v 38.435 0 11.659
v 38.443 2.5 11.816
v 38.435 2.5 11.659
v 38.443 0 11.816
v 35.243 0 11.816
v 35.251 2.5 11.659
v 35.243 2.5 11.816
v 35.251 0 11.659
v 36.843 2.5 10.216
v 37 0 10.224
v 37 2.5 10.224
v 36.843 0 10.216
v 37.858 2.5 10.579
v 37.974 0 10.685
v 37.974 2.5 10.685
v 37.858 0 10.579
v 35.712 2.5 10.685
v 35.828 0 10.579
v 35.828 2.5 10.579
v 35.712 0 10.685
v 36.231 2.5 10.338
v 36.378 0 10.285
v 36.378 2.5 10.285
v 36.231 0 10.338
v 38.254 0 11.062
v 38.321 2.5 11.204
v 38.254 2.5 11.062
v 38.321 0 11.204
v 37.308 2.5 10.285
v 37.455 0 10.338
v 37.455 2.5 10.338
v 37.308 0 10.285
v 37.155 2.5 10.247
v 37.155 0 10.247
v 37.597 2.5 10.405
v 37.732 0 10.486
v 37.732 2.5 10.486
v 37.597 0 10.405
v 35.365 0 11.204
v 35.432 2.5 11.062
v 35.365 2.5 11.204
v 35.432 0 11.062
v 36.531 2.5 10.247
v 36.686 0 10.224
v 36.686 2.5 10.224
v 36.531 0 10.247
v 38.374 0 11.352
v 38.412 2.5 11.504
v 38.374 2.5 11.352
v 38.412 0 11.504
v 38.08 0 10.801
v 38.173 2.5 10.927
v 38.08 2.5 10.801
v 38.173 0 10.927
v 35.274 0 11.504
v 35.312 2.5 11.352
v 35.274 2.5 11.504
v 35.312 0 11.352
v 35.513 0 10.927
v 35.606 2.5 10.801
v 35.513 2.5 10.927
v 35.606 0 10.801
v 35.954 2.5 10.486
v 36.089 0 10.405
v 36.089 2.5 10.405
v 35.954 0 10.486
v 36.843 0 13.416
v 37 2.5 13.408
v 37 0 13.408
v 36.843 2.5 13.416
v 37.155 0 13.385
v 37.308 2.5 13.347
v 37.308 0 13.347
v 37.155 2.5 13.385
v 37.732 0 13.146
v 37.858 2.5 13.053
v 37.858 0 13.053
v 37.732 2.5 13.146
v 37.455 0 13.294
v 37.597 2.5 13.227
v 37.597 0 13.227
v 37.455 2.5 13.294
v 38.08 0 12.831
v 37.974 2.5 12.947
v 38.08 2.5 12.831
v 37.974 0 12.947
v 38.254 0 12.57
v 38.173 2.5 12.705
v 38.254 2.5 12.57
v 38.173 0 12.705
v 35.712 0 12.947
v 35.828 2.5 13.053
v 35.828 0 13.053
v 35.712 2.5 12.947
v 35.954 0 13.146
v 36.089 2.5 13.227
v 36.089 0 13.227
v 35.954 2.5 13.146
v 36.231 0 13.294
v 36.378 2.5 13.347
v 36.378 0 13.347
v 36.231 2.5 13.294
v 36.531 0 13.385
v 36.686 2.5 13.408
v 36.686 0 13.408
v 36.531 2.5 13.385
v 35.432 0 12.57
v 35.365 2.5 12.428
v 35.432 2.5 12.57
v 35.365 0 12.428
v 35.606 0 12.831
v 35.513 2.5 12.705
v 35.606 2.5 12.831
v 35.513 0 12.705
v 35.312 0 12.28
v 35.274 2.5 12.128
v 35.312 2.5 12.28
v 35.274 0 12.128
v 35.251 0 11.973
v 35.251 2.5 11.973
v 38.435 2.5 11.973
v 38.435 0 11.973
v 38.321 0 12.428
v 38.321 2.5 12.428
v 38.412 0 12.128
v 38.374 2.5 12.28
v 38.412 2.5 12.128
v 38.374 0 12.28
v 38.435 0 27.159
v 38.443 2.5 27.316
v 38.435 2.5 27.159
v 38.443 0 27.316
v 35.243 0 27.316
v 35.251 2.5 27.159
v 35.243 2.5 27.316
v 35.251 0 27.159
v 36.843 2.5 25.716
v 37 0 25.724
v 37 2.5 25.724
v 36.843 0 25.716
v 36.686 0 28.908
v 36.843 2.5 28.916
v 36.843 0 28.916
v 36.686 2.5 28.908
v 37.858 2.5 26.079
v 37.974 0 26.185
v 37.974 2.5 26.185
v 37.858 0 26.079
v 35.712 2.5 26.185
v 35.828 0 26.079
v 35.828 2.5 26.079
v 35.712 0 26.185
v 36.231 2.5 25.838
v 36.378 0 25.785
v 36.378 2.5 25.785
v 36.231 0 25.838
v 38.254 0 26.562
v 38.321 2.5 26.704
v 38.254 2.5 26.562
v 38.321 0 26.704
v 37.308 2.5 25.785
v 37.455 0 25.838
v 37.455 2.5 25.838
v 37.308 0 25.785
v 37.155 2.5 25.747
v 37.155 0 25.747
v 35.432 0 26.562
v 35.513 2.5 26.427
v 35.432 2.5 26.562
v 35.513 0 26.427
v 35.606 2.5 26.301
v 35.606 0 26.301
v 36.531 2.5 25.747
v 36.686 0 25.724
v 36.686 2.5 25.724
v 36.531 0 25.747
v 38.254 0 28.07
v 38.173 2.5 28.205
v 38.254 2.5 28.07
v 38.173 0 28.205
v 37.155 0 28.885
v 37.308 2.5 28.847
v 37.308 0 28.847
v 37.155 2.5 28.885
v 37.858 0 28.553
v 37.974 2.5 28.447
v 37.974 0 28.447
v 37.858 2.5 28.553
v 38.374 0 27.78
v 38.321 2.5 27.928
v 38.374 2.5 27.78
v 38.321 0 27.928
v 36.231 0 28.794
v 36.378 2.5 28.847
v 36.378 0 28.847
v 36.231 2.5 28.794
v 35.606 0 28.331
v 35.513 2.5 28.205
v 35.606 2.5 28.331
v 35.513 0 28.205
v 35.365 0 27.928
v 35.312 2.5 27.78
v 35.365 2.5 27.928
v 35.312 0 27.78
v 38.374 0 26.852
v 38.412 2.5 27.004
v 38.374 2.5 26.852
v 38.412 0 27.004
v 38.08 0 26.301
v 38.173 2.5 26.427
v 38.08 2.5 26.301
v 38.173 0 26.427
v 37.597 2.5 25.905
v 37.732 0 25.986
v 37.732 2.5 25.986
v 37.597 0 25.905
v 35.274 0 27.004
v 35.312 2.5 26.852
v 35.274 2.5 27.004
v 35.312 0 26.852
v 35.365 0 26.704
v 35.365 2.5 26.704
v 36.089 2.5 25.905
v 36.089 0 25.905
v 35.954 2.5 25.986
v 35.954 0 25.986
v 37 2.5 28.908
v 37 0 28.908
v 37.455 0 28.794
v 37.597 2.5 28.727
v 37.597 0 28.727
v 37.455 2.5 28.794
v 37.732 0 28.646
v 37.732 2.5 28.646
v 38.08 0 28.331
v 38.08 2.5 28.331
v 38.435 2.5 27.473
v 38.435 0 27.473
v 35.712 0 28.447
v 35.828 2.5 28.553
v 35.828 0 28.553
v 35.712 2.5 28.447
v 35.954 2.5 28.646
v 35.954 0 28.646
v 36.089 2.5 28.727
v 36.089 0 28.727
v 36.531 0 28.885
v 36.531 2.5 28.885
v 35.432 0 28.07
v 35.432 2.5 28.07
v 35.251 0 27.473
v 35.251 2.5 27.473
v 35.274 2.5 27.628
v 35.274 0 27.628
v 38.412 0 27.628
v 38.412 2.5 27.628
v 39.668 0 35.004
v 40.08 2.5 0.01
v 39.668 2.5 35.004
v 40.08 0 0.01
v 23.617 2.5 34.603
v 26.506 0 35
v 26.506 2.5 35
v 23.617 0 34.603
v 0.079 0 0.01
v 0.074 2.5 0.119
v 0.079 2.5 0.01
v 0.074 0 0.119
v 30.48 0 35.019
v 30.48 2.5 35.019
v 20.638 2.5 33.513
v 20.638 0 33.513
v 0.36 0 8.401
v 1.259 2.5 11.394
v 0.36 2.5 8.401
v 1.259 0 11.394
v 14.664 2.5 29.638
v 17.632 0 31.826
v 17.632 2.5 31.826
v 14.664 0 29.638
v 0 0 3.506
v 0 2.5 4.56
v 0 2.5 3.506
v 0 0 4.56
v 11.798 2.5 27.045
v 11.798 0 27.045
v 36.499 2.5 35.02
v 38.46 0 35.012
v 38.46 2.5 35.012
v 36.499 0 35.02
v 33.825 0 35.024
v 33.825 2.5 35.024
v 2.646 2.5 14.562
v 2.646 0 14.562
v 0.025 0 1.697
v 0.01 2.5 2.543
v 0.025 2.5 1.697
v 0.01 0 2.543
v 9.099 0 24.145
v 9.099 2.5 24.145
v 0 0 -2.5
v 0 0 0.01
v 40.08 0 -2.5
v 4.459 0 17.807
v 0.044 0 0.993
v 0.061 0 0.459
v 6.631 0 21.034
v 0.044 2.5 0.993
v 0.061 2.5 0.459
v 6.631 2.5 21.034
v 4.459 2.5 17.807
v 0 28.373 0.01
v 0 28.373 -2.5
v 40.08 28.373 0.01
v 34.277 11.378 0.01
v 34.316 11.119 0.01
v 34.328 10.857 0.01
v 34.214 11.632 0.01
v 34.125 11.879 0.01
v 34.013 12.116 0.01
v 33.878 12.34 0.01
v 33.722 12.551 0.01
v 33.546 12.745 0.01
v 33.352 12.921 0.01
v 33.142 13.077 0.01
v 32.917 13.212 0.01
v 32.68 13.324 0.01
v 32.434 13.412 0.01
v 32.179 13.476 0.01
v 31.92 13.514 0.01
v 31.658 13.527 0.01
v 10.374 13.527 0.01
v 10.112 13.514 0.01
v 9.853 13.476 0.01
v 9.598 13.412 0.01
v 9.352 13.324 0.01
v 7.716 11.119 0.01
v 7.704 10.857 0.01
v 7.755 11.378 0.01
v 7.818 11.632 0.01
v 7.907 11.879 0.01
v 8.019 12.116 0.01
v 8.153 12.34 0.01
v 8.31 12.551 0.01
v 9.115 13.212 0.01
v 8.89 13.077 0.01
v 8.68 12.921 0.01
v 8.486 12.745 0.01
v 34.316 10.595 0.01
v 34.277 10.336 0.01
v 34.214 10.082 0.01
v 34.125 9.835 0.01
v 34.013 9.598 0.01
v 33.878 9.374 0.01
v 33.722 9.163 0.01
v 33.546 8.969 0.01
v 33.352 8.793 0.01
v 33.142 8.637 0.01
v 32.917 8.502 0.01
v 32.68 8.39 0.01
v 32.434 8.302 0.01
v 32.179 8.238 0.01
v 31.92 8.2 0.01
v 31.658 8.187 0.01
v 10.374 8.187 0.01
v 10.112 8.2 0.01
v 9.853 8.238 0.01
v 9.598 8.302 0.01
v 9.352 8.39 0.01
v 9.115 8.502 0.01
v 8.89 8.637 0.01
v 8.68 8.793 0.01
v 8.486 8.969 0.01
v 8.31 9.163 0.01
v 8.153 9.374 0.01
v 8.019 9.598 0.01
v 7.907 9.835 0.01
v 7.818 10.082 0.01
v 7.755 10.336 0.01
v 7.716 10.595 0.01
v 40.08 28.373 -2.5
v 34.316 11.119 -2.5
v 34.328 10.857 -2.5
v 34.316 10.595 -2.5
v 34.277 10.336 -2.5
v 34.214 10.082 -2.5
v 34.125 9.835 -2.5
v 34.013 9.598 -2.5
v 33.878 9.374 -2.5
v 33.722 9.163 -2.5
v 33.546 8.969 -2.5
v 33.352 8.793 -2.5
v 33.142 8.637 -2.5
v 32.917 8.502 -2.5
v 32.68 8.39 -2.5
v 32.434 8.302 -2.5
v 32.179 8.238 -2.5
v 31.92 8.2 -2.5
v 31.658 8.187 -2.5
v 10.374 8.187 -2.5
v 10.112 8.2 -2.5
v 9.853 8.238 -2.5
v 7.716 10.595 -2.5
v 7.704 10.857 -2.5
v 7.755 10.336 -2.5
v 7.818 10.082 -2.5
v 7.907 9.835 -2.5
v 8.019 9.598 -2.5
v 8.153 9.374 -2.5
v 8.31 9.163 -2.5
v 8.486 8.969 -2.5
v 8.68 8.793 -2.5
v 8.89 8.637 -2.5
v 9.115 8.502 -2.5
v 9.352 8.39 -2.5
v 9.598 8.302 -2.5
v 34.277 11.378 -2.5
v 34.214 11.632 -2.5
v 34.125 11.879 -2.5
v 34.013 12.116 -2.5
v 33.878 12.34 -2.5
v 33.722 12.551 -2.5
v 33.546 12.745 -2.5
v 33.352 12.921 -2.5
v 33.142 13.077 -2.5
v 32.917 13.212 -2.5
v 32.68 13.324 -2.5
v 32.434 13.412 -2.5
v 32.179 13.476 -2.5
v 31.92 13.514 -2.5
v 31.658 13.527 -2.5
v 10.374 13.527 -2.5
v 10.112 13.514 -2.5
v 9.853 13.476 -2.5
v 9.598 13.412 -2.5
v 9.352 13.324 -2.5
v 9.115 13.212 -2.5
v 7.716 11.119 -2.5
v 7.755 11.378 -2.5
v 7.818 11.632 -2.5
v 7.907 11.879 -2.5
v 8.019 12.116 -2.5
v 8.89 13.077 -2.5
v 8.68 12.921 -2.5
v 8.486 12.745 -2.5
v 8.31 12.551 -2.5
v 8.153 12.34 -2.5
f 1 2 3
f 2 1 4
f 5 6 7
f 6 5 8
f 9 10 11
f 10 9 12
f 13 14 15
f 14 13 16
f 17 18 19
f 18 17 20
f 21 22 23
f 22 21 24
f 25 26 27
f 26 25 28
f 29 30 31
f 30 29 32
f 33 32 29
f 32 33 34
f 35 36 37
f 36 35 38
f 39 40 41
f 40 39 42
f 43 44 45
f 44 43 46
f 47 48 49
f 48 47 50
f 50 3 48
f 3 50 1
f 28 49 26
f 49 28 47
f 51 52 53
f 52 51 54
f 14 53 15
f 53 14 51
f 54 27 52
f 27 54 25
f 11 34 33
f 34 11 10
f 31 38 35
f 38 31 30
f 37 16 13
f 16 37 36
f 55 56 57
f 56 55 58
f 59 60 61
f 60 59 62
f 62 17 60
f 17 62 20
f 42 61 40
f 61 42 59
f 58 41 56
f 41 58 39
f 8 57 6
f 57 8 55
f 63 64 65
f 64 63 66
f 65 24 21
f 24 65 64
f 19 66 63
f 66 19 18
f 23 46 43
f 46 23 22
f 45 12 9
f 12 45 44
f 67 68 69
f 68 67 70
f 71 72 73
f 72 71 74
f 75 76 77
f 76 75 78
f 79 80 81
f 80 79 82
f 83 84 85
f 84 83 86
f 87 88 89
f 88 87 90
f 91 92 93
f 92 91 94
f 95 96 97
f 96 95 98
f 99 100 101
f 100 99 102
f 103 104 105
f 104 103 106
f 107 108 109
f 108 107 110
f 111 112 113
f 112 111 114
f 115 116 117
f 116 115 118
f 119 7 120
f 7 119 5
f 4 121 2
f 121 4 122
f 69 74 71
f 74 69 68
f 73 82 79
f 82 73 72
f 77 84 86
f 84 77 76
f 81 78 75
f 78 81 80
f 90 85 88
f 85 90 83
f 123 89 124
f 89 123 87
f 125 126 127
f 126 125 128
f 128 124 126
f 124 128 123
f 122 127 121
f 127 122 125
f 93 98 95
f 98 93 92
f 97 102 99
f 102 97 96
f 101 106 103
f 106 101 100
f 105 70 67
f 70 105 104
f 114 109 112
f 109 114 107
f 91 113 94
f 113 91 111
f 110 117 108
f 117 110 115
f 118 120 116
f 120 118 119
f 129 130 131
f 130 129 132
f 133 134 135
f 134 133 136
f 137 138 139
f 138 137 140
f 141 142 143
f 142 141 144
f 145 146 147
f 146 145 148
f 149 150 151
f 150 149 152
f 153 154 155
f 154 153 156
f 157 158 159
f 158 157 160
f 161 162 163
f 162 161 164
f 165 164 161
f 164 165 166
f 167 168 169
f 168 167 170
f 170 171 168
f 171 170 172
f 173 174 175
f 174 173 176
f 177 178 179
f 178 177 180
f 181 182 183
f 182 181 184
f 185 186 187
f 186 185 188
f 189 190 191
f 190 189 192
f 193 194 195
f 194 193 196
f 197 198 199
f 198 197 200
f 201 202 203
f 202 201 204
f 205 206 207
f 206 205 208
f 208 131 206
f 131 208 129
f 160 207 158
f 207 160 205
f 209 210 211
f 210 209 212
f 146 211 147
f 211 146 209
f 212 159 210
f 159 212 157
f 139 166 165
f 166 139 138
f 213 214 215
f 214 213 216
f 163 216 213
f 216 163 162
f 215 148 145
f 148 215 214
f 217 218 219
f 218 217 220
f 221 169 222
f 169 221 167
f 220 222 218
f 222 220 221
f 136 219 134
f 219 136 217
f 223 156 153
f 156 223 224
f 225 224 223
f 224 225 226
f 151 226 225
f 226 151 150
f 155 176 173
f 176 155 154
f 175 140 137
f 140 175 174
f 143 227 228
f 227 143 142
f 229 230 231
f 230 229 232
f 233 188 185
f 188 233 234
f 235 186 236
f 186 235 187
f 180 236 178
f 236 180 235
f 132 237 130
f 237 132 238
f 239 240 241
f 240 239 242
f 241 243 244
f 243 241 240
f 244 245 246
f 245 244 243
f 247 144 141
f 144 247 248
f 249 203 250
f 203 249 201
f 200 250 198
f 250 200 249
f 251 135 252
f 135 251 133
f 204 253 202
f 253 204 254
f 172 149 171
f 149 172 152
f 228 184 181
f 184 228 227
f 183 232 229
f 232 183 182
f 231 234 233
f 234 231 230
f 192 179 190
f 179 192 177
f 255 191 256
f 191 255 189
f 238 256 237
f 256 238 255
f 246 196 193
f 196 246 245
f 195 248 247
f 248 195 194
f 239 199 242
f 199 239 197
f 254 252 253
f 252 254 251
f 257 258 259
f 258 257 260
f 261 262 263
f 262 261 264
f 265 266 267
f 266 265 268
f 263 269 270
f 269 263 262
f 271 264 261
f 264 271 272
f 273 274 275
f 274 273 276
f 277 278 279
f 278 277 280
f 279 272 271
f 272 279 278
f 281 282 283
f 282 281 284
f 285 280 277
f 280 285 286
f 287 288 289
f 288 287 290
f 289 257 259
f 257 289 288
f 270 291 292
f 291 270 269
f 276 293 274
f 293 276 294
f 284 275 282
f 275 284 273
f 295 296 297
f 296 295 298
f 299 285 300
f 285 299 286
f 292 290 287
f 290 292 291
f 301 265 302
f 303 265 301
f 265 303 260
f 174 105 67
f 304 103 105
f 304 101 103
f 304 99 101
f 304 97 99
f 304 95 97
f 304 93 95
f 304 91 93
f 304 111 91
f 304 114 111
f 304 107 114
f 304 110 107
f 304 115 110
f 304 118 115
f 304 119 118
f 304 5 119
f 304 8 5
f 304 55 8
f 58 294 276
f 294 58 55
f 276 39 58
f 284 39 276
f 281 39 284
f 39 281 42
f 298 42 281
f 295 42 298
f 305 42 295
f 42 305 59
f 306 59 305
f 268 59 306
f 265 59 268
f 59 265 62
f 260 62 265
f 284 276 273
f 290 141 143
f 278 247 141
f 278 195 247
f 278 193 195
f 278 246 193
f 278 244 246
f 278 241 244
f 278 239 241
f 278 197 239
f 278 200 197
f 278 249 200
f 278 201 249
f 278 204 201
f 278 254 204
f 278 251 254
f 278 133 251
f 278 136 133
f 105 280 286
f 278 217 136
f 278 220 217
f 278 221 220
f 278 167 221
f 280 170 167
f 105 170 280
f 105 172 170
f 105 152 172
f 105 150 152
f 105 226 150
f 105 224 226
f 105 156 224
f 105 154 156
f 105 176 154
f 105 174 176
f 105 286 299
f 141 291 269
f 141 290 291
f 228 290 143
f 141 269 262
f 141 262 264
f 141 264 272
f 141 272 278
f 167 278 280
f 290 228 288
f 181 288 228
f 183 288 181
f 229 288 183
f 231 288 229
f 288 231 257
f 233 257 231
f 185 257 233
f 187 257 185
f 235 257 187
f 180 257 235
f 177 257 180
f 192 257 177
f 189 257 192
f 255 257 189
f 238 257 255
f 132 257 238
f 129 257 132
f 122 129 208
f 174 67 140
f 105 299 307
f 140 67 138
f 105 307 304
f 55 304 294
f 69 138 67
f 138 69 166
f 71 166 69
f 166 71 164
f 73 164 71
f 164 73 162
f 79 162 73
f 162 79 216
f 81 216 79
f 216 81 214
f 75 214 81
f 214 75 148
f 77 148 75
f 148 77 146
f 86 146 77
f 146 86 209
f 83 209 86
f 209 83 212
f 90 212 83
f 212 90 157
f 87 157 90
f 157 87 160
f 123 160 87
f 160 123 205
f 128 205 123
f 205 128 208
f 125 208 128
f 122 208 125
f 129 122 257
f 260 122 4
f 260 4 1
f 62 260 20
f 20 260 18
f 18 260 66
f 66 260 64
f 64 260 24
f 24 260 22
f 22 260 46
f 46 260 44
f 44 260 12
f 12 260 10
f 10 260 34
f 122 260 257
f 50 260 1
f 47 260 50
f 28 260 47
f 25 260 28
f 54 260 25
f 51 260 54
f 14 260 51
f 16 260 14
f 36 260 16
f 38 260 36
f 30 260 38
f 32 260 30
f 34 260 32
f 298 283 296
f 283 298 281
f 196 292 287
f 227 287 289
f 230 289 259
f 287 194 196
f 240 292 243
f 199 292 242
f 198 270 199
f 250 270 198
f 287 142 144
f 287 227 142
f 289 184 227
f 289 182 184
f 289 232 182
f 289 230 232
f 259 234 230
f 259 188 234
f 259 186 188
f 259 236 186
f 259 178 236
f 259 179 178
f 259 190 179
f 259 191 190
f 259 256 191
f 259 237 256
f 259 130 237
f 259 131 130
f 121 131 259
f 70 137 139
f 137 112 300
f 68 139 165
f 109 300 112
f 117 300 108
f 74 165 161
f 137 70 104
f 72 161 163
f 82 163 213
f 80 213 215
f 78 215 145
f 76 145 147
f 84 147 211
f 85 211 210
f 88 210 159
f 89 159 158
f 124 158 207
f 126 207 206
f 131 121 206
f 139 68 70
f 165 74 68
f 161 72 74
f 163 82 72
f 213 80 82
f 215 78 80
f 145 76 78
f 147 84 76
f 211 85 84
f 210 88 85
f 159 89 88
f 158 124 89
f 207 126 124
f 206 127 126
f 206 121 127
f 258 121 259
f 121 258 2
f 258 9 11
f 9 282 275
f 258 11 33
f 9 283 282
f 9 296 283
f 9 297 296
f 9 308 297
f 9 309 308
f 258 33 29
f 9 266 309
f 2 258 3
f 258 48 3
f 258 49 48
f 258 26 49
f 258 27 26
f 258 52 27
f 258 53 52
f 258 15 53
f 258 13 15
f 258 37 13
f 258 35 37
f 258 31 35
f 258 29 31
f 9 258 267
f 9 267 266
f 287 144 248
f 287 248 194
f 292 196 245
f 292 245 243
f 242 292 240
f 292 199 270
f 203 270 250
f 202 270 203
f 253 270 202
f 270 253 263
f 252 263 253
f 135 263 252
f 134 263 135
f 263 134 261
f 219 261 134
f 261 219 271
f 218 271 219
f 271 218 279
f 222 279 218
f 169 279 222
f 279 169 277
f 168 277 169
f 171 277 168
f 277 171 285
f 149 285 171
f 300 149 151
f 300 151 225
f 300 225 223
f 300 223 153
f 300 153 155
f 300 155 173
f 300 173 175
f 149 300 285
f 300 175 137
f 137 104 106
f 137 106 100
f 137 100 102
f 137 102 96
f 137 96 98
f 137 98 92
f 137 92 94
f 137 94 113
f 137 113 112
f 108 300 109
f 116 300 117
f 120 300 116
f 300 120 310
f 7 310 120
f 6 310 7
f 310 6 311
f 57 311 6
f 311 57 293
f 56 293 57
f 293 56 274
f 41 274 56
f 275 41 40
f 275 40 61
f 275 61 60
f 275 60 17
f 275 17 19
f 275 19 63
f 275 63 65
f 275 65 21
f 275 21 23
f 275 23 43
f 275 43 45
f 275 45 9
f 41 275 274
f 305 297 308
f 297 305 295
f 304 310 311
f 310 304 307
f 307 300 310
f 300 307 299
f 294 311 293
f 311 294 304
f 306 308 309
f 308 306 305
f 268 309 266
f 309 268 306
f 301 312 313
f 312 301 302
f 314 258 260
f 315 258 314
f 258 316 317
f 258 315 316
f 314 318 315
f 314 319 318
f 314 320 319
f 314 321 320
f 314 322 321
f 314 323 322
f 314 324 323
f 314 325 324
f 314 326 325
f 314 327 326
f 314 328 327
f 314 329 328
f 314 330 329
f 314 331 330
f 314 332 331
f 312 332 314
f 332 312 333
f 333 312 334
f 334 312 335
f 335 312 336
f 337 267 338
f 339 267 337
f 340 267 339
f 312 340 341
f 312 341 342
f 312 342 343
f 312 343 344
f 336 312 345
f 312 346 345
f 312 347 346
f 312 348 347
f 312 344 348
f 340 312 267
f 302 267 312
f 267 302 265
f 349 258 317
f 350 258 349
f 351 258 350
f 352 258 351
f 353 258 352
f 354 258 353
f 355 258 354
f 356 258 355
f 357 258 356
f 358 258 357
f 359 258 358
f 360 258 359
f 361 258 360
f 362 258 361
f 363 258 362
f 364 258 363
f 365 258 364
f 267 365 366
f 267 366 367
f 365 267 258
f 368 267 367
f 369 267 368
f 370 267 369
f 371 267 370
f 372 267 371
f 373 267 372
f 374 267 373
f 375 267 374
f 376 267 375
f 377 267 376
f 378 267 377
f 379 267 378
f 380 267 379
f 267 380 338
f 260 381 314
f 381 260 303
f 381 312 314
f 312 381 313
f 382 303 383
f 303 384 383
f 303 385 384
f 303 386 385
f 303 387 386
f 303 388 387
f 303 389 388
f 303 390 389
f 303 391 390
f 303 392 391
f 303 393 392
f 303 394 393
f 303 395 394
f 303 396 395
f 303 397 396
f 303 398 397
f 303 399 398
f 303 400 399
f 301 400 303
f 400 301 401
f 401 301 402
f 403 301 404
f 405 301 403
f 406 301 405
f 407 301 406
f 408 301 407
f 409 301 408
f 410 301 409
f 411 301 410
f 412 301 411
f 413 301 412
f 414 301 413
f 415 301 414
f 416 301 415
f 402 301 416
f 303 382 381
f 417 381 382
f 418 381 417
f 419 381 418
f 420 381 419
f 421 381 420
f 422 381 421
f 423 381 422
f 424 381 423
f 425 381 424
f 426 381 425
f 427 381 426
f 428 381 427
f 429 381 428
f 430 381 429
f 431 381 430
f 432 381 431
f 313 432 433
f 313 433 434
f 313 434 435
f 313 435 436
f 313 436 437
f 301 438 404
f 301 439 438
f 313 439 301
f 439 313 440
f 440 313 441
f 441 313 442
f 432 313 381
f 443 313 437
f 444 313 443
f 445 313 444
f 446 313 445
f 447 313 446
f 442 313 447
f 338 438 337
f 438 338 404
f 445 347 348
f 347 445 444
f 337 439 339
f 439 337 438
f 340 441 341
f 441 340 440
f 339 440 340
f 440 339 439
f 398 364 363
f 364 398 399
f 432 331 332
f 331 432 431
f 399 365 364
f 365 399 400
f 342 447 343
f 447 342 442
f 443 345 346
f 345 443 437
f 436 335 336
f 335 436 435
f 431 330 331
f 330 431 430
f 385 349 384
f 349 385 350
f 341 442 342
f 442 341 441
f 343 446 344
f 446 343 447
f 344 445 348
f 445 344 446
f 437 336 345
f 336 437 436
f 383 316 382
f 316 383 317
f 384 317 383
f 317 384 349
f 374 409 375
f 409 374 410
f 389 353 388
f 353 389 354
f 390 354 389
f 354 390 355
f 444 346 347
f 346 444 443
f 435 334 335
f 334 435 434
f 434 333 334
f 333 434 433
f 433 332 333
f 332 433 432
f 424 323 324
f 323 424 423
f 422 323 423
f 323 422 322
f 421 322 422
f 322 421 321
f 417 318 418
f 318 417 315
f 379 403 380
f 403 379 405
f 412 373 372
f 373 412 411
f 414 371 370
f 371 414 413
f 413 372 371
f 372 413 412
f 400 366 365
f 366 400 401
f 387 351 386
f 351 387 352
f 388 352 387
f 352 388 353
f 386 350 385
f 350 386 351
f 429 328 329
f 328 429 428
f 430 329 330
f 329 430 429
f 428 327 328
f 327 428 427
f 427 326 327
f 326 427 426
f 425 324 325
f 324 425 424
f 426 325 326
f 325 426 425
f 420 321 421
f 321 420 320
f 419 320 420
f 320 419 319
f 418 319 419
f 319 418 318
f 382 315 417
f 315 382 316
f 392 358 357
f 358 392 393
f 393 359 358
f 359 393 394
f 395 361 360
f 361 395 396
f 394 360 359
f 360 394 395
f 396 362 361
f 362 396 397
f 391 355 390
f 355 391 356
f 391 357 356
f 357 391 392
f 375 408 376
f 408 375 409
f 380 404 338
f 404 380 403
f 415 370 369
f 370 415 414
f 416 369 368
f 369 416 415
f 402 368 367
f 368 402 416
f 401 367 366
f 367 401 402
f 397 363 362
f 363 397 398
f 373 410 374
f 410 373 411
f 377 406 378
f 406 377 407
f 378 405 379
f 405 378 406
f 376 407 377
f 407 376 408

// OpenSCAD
// OLMP-V1.2C board mount, 3D-printed (interim, until laser cutter is
// rebuilt - see docs/decisions/0049-olmp-board-mount-3d-printed.md).
//
// Direct translation of Reference/olmp-board-mount-build reference.svg
// (FRONT/TOP/SIDE layers). Genuine L-bracket: thin vertical wall +
// thin horizontal foot (both 2.5mm, per the SIDE layer), not a solid
// wedge - the SIDE layer is two ~2.4mm-thick rectangles meeting at a
// corner, i.e. an actual L cross-section.
//
// Axes: X = width (u, FRONT/TOP left-right), Y = depth (d, TOP/SIDE
// front-back), Z = height (w, FRONT/SIDE up-down).
//
// Units: mm.

$fn = 64;

// --- exact FRONT profile outline (wall's own front-facing silhouette),
// traced from the SVG path/bezier curves, as (u, -w) pairs ready for
// linear_extrude + rotate([-90,0,0]) (see wall() below) ---
front_profile = [
    [26.506,-35.0], [30.48,-35.019], [33.825,-35.024], [36.499,-35.02],
    [38.46,-35.012], [39.668,-35.004], [40.08,-0.0], [0.08,-0.0],
    [0.074,-0.119], [0.061,-0.459], [0.044,-0.993], [0.025,-1.697],
    [0.01,-2.543], [0.0,-3.506], [0.0,-4.56], [0.36,-8.401],
    [1.259,-11.394], [2.646,-14.562], [4.459,-17.807], [6.631,-21.034],
    [9.099,-24.145], [11.798,-27.045], [14.664,-29.638], [17.632,-31.826],
    [20.638,-33.513], [23.617,-34.603], [26.506,-35.0],
];
front_width = 40.08;

// --- M3 board holes, exact FRONT-layer circle positions (u, w) ---
hole_u = 36.843;
hole_w = [11.816, 27.316];   // 15.5mm apart, as drawn
hole_dia = 3.2;              // as drawn (2x1.6mm radius)

// --- SIDE-layer L cross-section thicknesses ---
wall_t = 2.5;   // vertical wall thickness (D), rect8 (2.424mm drawn)
foot_t = 2.5;   // horizontal foot thickness (W), rect9 (2.432mm drawn)
foot_d = 28.373; // foot depth/length (D), rect9's drawn length

// --- TOP-layer M5 slide slot, long axis along U (parallel to the
// front wall) ---
slot_u        = 21.016;  // slot center, distance from the shared left edge
slot_d        = 10.857;  // slot center, distance from TOP's near edge
slot_len      = 26.625;  // full stadium length (u axis)
slot_width    = 5.34;    // as drawn (~5.5mm stated)
slot_straight = slot_len - slot_width;

module wall() {
    difference() {
        rotate([-90, 0, 0])
            linear_extrude(height = wall_t)
                polygon(points = front_profile);

        for (w = hole_w)
            translate([hole_u, -1, w])
                rotate([-90, 0, 0])
                    cylinder(h = wall_t + 2, d = hole_dia);
    }
}

module foot() {
    difference() {
        translate([0, 0, -foot_t])
            cube([front_width, foot_d, foot_t + 0.01]); // +0.01 overlap into the wall for a clean union

        translate([slot_u, slot_d, -foot_t - 1])
            hull() {
                translate([-slot_straight/2, 0, 0]) cylinder(h = foot_t + 2, d = slot_width);
                translate([ slot_straight/2, 0, 0]) cylinder(h = foot_t + 2, d = slot_width);
            }
    }
}

module olmp_board_mount() {
    union() {
        wall();
        foot();
    }
}

olmp_board_mount();
